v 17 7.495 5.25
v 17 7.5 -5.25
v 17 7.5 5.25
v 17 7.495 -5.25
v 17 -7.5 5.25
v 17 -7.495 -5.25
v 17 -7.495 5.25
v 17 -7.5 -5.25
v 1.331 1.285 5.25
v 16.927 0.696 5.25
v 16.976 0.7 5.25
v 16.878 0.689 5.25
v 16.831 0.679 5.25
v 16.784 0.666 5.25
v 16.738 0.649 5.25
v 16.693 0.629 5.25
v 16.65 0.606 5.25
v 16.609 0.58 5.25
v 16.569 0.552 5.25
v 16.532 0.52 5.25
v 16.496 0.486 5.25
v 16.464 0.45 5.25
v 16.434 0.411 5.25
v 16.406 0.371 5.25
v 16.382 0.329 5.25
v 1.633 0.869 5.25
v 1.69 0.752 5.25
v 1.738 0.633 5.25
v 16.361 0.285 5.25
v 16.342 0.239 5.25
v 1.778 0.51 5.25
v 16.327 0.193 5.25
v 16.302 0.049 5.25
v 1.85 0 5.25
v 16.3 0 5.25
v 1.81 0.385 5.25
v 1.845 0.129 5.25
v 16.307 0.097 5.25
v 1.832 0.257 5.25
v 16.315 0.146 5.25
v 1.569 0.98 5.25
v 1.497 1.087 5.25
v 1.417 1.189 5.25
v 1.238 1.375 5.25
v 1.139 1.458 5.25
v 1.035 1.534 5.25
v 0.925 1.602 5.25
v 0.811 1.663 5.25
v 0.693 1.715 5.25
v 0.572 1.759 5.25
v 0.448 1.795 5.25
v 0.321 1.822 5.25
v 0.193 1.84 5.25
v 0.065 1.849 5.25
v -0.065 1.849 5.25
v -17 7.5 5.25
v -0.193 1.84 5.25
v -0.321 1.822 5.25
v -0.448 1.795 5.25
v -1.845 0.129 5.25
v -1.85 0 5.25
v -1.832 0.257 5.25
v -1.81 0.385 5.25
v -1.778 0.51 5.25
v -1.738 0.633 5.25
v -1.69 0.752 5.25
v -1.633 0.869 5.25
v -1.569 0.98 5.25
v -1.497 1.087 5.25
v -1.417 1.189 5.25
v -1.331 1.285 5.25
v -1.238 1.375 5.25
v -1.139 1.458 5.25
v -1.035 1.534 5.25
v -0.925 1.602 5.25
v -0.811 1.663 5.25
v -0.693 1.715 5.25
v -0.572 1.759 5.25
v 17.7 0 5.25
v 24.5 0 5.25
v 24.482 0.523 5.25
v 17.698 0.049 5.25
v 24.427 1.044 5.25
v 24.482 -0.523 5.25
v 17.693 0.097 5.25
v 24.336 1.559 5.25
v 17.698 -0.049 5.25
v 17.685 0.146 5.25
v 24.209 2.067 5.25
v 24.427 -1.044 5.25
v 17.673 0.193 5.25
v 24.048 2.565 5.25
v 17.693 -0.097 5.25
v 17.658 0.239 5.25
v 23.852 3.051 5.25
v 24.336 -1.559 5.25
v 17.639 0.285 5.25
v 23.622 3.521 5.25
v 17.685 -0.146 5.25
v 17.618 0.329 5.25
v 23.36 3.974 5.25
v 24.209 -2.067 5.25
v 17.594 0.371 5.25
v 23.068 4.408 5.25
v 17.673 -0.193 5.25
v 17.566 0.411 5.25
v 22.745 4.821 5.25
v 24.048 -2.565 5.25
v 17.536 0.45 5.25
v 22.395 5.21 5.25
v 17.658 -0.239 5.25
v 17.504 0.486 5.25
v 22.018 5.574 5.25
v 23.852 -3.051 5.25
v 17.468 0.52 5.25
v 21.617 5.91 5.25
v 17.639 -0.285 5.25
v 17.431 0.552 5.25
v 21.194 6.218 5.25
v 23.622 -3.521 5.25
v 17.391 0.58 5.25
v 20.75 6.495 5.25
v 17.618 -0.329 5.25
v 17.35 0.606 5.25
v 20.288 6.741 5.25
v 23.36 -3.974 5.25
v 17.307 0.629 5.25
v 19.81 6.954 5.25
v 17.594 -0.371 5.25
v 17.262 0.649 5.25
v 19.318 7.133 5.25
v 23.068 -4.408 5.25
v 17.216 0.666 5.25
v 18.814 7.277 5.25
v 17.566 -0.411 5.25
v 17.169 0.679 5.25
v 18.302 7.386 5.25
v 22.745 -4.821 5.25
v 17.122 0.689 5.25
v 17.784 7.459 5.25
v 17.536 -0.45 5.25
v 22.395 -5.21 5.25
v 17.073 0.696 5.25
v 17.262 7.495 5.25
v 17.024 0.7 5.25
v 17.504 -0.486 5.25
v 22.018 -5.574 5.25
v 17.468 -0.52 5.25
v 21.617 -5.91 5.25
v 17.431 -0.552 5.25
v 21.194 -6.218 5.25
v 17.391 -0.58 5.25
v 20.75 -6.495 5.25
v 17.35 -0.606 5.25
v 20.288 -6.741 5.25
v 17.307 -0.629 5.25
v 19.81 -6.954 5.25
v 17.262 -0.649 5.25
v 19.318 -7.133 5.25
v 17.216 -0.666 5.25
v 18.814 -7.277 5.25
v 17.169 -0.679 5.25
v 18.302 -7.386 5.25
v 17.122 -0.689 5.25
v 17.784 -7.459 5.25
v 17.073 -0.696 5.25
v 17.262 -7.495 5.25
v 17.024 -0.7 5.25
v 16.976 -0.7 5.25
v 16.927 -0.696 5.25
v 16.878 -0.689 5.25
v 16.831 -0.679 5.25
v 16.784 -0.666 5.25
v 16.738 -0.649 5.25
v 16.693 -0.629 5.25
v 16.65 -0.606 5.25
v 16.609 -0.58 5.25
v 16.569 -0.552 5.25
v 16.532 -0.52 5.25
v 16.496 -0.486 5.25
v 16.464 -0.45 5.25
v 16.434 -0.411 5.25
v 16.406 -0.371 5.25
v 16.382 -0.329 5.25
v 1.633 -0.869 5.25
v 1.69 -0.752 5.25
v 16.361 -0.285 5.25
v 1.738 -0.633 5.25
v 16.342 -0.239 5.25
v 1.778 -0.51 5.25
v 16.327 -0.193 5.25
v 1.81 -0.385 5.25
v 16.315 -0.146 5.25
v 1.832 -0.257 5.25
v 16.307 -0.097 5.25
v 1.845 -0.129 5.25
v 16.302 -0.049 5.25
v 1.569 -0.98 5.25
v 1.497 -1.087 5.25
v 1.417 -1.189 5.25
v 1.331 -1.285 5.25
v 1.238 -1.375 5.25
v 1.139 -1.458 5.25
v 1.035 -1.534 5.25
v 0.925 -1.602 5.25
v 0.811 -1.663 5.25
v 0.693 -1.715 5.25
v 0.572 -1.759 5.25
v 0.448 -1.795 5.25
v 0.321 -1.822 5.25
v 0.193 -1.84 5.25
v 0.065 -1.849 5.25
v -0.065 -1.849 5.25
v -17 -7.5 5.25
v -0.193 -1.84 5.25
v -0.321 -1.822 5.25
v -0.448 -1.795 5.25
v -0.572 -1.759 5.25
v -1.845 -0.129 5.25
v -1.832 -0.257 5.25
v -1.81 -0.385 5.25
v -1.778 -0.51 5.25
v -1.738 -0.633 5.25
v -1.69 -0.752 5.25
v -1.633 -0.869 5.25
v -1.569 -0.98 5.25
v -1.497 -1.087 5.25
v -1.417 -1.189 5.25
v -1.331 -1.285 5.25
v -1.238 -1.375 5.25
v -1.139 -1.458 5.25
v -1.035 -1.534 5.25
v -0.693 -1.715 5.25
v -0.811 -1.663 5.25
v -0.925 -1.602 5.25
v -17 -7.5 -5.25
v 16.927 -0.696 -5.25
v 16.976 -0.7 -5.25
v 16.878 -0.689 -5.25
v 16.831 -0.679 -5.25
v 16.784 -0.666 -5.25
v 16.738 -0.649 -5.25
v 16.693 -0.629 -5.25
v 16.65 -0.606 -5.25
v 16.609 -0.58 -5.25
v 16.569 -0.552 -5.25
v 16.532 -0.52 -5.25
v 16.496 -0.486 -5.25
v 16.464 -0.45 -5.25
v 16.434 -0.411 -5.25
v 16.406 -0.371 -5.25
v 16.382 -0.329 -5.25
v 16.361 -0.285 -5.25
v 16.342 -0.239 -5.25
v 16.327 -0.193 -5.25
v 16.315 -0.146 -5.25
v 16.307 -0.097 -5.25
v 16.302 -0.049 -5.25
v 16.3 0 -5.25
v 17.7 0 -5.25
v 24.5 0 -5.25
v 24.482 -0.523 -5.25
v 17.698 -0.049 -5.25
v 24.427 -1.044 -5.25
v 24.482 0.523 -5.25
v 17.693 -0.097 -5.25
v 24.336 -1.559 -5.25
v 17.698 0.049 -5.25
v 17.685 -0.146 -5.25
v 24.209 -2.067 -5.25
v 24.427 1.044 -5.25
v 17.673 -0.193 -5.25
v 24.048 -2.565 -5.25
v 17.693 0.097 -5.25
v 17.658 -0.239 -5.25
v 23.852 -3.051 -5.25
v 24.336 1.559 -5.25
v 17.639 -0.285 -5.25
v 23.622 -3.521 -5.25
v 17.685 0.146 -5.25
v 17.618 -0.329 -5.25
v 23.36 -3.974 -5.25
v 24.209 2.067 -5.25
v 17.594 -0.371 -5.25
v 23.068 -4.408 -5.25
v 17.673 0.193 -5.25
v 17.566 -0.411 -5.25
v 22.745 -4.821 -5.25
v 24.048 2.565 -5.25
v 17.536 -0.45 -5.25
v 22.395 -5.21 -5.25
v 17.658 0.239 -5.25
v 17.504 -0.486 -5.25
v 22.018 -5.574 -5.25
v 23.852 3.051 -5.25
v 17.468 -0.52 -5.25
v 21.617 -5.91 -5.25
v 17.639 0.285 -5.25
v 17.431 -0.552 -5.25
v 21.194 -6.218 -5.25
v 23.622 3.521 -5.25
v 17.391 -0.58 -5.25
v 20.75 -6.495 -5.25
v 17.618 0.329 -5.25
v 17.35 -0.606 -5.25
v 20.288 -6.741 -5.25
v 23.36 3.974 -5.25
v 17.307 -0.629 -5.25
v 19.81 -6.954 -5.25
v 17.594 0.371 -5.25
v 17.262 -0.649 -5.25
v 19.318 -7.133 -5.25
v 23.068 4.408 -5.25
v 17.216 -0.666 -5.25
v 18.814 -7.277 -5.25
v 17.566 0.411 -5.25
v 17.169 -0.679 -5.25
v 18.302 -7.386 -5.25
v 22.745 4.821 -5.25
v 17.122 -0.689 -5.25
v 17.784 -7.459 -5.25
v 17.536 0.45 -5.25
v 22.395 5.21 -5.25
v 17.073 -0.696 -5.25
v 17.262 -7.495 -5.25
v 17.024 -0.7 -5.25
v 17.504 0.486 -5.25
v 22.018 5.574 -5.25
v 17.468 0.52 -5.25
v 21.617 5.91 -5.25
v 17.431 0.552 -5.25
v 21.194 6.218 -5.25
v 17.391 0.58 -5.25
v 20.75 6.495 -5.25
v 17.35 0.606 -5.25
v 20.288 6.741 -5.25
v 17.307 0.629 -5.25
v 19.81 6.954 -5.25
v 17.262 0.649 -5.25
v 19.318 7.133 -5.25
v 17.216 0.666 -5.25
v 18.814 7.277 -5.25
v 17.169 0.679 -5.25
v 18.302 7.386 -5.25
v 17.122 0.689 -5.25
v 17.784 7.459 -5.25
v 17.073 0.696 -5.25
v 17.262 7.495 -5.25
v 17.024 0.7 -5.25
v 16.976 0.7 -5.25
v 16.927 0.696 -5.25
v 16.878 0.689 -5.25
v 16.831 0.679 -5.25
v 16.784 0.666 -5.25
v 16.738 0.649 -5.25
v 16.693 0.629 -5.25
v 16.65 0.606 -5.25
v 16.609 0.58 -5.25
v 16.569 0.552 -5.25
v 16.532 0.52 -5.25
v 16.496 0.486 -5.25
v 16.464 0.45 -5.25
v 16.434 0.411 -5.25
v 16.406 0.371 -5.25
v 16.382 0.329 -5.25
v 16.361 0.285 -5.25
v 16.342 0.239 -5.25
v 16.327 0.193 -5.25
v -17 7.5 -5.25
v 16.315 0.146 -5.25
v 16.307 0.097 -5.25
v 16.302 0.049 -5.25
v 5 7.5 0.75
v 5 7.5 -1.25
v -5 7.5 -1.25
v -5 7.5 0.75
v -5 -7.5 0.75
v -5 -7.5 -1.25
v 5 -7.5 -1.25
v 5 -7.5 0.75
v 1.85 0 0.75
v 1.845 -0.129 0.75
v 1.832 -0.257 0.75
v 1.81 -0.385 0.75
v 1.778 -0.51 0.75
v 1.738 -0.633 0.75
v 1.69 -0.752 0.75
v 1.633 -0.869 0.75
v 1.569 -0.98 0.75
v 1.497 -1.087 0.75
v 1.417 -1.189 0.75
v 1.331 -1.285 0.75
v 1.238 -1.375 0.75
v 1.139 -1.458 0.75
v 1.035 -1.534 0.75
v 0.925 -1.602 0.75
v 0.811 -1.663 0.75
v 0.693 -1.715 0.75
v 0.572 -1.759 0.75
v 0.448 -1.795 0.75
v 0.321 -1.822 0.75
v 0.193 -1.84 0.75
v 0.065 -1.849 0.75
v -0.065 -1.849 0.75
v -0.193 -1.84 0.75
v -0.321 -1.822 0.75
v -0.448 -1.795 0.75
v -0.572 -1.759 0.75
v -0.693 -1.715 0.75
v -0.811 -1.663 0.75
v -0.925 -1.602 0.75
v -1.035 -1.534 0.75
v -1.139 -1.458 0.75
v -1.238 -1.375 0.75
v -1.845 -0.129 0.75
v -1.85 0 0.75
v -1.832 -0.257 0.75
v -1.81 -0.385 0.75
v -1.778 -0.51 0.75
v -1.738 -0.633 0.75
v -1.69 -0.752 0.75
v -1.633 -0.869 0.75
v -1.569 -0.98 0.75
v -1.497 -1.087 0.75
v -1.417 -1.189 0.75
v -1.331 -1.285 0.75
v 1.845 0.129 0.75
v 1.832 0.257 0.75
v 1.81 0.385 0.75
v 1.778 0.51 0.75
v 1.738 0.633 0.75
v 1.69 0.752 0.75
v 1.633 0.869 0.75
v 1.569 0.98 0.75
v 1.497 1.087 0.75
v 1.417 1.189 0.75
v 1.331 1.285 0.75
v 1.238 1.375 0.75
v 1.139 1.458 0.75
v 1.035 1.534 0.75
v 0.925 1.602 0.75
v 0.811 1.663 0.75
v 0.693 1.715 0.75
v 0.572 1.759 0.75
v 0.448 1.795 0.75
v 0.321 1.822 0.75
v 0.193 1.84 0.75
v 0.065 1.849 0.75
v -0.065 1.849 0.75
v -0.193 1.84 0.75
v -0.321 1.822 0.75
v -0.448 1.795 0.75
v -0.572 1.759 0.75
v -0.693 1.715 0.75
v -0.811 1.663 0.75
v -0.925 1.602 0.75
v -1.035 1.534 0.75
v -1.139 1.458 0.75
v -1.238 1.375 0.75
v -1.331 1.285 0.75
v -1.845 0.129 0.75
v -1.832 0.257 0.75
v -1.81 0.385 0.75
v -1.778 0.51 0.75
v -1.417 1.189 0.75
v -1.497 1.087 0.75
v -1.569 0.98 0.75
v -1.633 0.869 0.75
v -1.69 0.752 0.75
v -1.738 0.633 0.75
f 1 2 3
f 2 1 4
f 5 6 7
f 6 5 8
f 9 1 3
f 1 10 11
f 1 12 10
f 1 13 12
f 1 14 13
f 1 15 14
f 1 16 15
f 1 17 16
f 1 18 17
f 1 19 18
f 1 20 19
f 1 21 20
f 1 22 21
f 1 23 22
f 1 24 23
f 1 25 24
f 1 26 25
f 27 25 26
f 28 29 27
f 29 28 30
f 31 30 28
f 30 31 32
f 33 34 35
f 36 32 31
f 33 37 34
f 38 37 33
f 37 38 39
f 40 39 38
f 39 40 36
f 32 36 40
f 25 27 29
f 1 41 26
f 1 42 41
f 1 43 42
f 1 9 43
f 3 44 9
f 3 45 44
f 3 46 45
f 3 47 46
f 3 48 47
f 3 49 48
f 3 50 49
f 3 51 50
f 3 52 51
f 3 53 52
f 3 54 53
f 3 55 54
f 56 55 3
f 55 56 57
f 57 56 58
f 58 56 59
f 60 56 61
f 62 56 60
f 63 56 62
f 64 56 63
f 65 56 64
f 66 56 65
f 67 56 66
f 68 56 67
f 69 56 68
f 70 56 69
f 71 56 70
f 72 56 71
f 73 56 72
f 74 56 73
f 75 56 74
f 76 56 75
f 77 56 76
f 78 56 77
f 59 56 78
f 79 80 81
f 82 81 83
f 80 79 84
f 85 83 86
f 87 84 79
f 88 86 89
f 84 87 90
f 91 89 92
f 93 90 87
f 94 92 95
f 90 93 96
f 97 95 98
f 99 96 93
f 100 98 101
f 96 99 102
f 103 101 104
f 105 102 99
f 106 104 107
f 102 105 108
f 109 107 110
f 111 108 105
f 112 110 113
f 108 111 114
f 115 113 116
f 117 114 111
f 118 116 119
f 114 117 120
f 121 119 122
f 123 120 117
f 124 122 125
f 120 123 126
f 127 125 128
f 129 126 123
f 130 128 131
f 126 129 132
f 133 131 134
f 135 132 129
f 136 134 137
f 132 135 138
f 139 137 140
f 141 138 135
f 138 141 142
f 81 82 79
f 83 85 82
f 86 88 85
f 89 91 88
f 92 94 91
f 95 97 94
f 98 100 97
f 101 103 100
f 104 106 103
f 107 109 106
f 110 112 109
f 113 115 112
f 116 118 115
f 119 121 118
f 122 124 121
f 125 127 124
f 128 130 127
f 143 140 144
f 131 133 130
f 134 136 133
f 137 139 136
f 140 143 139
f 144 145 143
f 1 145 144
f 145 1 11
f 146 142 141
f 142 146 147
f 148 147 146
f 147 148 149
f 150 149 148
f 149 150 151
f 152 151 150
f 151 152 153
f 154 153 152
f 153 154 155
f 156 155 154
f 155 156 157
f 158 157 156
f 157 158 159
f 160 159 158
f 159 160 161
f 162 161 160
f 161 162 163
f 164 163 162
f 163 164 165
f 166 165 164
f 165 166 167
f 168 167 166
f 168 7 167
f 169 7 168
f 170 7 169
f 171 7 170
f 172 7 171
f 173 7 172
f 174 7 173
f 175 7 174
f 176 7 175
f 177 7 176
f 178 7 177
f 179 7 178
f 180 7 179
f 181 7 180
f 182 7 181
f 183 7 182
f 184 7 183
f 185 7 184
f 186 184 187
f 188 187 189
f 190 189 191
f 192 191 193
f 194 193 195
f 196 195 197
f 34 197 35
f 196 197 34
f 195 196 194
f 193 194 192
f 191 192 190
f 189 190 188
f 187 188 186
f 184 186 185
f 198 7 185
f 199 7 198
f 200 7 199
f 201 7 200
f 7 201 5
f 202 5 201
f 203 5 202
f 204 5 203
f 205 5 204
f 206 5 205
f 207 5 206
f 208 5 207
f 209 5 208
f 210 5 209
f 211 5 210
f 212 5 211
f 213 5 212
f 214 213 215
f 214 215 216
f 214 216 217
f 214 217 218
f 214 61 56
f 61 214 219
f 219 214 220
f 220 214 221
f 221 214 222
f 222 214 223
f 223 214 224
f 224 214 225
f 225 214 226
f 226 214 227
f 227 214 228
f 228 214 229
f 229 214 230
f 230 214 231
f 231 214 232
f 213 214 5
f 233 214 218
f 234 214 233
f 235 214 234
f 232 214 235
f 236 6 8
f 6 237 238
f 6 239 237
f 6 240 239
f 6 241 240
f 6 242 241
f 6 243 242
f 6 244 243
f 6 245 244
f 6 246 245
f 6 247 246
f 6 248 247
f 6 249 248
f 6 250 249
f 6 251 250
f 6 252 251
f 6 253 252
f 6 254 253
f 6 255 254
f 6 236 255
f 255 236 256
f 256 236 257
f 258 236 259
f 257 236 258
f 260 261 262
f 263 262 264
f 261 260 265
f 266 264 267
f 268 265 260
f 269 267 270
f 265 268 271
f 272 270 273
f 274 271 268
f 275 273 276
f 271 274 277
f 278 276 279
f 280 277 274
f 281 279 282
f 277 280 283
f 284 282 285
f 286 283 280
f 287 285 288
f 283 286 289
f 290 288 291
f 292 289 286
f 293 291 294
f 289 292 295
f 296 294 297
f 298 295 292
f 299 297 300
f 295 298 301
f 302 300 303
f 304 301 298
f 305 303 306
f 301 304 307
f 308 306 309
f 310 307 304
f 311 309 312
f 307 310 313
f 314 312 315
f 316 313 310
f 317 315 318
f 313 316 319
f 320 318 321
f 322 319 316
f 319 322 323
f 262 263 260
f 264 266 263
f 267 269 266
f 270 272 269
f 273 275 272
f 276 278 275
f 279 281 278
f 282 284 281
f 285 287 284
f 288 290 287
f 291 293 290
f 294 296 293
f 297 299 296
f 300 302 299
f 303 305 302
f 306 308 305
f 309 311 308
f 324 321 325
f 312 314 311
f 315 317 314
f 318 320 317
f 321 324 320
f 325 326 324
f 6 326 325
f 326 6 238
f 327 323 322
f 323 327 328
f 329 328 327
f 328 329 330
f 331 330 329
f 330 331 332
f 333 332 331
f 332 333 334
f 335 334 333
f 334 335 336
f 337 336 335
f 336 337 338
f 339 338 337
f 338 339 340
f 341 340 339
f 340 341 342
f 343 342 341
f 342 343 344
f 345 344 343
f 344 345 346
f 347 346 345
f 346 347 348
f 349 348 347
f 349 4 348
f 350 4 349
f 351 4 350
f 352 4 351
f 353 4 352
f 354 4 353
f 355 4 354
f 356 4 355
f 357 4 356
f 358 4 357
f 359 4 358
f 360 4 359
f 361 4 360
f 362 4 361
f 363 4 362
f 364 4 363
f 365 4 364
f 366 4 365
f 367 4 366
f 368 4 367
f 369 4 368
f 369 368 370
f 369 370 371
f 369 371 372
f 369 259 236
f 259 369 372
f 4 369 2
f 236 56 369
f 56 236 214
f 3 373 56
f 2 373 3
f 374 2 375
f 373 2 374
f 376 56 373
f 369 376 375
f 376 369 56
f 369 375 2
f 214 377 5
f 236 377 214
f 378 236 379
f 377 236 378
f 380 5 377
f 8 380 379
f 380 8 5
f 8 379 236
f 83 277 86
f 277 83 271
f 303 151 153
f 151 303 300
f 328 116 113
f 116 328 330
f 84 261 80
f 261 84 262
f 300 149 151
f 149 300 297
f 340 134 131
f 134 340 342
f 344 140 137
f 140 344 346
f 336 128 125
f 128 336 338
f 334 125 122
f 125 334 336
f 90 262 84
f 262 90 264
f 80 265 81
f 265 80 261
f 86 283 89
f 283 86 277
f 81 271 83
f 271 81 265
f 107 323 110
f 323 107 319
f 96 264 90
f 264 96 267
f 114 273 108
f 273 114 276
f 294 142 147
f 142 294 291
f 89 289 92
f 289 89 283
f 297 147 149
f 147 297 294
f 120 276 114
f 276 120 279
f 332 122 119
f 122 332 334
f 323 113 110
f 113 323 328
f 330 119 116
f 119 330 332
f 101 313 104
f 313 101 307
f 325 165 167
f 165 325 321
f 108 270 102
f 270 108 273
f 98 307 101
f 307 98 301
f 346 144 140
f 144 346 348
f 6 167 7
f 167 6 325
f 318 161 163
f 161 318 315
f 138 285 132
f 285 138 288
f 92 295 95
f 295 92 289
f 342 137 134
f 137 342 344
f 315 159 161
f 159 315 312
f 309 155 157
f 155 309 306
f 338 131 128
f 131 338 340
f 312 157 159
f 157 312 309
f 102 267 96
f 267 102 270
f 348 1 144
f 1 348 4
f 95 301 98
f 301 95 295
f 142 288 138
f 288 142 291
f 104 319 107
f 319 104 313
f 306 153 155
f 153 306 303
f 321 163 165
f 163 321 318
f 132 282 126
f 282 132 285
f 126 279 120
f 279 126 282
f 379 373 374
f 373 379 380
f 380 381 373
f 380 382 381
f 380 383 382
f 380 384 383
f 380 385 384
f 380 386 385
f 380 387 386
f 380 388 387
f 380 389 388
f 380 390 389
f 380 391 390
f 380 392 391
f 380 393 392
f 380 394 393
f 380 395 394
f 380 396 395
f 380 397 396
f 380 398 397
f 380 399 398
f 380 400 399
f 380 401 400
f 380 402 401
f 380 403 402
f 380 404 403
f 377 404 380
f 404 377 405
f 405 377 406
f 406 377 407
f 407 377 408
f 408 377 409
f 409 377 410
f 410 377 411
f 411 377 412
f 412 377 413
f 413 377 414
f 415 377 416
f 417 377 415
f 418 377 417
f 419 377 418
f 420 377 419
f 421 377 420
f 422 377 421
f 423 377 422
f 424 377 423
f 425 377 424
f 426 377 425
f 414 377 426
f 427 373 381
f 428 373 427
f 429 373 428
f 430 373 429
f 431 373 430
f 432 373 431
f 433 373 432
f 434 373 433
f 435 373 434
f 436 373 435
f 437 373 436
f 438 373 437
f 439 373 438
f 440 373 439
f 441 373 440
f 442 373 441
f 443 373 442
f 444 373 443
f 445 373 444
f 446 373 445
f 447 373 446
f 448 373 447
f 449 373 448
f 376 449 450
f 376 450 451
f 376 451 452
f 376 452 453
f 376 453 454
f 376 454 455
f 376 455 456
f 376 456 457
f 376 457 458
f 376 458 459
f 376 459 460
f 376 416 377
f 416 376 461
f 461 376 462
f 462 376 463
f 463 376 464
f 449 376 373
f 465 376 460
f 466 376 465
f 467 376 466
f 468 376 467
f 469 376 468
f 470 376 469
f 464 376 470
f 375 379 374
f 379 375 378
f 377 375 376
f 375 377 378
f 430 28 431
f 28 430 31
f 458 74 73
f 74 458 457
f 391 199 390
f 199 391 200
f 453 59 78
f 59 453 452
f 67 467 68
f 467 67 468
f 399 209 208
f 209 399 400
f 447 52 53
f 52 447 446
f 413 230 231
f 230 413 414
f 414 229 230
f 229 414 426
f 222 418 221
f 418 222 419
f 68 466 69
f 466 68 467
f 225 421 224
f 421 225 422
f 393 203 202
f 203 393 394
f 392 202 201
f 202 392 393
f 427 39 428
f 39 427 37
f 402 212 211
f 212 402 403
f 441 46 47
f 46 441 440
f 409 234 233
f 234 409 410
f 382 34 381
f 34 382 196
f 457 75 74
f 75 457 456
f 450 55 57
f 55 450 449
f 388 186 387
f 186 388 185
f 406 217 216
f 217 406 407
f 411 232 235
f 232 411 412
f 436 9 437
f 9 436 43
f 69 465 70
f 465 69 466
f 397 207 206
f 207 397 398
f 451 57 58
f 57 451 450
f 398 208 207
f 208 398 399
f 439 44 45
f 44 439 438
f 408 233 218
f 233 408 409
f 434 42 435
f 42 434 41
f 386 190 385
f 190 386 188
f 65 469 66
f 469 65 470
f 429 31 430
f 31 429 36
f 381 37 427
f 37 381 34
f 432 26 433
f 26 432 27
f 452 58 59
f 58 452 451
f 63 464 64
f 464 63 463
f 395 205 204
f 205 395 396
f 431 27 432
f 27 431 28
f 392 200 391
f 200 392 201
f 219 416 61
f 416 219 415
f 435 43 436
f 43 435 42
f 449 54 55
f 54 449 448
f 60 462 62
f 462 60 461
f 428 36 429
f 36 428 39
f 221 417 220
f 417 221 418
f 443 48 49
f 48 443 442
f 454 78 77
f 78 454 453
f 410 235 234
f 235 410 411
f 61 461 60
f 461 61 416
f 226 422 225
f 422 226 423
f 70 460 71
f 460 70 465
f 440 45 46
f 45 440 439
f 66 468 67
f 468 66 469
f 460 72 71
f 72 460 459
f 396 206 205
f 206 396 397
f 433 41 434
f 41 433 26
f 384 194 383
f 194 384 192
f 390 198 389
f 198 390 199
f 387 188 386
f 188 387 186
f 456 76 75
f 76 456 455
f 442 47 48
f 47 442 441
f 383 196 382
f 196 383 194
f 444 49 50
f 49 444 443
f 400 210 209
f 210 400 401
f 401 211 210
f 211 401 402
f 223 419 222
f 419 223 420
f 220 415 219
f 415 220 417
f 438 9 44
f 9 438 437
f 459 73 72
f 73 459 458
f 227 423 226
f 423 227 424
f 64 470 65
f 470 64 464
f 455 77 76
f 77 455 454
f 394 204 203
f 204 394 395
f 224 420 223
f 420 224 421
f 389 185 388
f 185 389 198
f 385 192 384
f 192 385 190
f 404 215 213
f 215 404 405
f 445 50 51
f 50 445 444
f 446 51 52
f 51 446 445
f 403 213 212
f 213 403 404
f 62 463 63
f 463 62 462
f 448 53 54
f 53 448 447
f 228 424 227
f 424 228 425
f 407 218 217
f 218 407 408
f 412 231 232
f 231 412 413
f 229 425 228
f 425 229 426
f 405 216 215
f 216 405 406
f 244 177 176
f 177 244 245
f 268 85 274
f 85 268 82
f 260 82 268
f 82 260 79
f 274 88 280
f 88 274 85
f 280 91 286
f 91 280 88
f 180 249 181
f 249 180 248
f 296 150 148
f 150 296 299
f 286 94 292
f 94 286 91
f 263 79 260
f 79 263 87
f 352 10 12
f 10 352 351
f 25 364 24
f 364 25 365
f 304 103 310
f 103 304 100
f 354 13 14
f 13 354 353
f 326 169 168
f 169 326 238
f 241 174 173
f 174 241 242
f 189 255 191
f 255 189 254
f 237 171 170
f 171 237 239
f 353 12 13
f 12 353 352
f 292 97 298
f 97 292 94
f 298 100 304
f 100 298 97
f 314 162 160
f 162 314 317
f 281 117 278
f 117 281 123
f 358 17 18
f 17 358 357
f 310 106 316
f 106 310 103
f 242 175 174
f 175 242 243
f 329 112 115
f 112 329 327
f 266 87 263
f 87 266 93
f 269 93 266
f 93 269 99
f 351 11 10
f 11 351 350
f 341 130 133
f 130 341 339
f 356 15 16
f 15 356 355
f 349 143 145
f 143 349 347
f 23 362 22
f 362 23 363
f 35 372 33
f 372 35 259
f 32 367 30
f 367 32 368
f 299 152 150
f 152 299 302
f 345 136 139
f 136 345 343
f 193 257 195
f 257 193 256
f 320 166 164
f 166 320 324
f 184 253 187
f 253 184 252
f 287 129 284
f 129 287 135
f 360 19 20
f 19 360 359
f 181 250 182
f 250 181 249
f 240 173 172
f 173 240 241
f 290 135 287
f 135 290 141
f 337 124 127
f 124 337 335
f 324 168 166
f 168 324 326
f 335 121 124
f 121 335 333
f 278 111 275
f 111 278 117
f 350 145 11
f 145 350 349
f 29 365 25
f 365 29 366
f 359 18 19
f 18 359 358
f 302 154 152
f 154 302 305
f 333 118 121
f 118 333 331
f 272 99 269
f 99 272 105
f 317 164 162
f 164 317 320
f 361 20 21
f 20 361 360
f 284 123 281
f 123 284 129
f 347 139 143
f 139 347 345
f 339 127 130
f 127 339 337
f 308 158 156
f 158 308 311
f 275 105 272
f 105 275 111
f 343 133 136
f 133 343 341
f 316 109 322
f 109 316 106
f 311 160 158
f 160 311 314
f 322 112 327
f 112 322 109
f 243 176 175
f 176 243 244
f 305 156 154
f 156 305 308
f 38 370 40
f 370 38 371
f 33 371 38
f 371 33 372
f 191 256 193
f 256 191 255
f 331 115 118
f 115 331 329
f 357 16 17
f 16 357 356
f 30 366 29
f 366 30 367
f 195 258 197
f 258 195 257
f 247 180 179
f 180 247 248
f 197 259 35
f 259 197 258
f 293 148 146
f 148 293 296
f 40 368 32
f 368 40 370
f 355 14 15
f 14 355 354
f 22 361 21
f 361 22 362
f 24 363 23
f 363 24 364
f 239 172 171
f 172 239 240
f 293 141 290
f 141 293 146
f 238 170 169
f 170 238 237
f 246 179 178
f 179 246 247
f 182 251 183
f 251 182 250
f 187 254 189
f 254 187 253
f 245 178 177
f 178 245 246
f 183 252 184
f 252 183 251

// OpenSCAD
$fn = 90;
depth = 15;
height = 10.5;
slitHeight = 2;
centerHoleX = 17;
difference(){
	union(){
		cube([34, depth, height], center=true);
		translate([centerHoleX, 0, 0])
			cylinder(d=depth, h=height, center=true);
	}
	translate([0, 0, -height/2+slitHeight/2+4])
		#cube([10, depth, slitHeight], center=true);
	#cylinder(d=3.7, h=height);
	translate([centerHoleX, 0, 0])
		#cylinder(d=1.4, h=height, center=true);
}
